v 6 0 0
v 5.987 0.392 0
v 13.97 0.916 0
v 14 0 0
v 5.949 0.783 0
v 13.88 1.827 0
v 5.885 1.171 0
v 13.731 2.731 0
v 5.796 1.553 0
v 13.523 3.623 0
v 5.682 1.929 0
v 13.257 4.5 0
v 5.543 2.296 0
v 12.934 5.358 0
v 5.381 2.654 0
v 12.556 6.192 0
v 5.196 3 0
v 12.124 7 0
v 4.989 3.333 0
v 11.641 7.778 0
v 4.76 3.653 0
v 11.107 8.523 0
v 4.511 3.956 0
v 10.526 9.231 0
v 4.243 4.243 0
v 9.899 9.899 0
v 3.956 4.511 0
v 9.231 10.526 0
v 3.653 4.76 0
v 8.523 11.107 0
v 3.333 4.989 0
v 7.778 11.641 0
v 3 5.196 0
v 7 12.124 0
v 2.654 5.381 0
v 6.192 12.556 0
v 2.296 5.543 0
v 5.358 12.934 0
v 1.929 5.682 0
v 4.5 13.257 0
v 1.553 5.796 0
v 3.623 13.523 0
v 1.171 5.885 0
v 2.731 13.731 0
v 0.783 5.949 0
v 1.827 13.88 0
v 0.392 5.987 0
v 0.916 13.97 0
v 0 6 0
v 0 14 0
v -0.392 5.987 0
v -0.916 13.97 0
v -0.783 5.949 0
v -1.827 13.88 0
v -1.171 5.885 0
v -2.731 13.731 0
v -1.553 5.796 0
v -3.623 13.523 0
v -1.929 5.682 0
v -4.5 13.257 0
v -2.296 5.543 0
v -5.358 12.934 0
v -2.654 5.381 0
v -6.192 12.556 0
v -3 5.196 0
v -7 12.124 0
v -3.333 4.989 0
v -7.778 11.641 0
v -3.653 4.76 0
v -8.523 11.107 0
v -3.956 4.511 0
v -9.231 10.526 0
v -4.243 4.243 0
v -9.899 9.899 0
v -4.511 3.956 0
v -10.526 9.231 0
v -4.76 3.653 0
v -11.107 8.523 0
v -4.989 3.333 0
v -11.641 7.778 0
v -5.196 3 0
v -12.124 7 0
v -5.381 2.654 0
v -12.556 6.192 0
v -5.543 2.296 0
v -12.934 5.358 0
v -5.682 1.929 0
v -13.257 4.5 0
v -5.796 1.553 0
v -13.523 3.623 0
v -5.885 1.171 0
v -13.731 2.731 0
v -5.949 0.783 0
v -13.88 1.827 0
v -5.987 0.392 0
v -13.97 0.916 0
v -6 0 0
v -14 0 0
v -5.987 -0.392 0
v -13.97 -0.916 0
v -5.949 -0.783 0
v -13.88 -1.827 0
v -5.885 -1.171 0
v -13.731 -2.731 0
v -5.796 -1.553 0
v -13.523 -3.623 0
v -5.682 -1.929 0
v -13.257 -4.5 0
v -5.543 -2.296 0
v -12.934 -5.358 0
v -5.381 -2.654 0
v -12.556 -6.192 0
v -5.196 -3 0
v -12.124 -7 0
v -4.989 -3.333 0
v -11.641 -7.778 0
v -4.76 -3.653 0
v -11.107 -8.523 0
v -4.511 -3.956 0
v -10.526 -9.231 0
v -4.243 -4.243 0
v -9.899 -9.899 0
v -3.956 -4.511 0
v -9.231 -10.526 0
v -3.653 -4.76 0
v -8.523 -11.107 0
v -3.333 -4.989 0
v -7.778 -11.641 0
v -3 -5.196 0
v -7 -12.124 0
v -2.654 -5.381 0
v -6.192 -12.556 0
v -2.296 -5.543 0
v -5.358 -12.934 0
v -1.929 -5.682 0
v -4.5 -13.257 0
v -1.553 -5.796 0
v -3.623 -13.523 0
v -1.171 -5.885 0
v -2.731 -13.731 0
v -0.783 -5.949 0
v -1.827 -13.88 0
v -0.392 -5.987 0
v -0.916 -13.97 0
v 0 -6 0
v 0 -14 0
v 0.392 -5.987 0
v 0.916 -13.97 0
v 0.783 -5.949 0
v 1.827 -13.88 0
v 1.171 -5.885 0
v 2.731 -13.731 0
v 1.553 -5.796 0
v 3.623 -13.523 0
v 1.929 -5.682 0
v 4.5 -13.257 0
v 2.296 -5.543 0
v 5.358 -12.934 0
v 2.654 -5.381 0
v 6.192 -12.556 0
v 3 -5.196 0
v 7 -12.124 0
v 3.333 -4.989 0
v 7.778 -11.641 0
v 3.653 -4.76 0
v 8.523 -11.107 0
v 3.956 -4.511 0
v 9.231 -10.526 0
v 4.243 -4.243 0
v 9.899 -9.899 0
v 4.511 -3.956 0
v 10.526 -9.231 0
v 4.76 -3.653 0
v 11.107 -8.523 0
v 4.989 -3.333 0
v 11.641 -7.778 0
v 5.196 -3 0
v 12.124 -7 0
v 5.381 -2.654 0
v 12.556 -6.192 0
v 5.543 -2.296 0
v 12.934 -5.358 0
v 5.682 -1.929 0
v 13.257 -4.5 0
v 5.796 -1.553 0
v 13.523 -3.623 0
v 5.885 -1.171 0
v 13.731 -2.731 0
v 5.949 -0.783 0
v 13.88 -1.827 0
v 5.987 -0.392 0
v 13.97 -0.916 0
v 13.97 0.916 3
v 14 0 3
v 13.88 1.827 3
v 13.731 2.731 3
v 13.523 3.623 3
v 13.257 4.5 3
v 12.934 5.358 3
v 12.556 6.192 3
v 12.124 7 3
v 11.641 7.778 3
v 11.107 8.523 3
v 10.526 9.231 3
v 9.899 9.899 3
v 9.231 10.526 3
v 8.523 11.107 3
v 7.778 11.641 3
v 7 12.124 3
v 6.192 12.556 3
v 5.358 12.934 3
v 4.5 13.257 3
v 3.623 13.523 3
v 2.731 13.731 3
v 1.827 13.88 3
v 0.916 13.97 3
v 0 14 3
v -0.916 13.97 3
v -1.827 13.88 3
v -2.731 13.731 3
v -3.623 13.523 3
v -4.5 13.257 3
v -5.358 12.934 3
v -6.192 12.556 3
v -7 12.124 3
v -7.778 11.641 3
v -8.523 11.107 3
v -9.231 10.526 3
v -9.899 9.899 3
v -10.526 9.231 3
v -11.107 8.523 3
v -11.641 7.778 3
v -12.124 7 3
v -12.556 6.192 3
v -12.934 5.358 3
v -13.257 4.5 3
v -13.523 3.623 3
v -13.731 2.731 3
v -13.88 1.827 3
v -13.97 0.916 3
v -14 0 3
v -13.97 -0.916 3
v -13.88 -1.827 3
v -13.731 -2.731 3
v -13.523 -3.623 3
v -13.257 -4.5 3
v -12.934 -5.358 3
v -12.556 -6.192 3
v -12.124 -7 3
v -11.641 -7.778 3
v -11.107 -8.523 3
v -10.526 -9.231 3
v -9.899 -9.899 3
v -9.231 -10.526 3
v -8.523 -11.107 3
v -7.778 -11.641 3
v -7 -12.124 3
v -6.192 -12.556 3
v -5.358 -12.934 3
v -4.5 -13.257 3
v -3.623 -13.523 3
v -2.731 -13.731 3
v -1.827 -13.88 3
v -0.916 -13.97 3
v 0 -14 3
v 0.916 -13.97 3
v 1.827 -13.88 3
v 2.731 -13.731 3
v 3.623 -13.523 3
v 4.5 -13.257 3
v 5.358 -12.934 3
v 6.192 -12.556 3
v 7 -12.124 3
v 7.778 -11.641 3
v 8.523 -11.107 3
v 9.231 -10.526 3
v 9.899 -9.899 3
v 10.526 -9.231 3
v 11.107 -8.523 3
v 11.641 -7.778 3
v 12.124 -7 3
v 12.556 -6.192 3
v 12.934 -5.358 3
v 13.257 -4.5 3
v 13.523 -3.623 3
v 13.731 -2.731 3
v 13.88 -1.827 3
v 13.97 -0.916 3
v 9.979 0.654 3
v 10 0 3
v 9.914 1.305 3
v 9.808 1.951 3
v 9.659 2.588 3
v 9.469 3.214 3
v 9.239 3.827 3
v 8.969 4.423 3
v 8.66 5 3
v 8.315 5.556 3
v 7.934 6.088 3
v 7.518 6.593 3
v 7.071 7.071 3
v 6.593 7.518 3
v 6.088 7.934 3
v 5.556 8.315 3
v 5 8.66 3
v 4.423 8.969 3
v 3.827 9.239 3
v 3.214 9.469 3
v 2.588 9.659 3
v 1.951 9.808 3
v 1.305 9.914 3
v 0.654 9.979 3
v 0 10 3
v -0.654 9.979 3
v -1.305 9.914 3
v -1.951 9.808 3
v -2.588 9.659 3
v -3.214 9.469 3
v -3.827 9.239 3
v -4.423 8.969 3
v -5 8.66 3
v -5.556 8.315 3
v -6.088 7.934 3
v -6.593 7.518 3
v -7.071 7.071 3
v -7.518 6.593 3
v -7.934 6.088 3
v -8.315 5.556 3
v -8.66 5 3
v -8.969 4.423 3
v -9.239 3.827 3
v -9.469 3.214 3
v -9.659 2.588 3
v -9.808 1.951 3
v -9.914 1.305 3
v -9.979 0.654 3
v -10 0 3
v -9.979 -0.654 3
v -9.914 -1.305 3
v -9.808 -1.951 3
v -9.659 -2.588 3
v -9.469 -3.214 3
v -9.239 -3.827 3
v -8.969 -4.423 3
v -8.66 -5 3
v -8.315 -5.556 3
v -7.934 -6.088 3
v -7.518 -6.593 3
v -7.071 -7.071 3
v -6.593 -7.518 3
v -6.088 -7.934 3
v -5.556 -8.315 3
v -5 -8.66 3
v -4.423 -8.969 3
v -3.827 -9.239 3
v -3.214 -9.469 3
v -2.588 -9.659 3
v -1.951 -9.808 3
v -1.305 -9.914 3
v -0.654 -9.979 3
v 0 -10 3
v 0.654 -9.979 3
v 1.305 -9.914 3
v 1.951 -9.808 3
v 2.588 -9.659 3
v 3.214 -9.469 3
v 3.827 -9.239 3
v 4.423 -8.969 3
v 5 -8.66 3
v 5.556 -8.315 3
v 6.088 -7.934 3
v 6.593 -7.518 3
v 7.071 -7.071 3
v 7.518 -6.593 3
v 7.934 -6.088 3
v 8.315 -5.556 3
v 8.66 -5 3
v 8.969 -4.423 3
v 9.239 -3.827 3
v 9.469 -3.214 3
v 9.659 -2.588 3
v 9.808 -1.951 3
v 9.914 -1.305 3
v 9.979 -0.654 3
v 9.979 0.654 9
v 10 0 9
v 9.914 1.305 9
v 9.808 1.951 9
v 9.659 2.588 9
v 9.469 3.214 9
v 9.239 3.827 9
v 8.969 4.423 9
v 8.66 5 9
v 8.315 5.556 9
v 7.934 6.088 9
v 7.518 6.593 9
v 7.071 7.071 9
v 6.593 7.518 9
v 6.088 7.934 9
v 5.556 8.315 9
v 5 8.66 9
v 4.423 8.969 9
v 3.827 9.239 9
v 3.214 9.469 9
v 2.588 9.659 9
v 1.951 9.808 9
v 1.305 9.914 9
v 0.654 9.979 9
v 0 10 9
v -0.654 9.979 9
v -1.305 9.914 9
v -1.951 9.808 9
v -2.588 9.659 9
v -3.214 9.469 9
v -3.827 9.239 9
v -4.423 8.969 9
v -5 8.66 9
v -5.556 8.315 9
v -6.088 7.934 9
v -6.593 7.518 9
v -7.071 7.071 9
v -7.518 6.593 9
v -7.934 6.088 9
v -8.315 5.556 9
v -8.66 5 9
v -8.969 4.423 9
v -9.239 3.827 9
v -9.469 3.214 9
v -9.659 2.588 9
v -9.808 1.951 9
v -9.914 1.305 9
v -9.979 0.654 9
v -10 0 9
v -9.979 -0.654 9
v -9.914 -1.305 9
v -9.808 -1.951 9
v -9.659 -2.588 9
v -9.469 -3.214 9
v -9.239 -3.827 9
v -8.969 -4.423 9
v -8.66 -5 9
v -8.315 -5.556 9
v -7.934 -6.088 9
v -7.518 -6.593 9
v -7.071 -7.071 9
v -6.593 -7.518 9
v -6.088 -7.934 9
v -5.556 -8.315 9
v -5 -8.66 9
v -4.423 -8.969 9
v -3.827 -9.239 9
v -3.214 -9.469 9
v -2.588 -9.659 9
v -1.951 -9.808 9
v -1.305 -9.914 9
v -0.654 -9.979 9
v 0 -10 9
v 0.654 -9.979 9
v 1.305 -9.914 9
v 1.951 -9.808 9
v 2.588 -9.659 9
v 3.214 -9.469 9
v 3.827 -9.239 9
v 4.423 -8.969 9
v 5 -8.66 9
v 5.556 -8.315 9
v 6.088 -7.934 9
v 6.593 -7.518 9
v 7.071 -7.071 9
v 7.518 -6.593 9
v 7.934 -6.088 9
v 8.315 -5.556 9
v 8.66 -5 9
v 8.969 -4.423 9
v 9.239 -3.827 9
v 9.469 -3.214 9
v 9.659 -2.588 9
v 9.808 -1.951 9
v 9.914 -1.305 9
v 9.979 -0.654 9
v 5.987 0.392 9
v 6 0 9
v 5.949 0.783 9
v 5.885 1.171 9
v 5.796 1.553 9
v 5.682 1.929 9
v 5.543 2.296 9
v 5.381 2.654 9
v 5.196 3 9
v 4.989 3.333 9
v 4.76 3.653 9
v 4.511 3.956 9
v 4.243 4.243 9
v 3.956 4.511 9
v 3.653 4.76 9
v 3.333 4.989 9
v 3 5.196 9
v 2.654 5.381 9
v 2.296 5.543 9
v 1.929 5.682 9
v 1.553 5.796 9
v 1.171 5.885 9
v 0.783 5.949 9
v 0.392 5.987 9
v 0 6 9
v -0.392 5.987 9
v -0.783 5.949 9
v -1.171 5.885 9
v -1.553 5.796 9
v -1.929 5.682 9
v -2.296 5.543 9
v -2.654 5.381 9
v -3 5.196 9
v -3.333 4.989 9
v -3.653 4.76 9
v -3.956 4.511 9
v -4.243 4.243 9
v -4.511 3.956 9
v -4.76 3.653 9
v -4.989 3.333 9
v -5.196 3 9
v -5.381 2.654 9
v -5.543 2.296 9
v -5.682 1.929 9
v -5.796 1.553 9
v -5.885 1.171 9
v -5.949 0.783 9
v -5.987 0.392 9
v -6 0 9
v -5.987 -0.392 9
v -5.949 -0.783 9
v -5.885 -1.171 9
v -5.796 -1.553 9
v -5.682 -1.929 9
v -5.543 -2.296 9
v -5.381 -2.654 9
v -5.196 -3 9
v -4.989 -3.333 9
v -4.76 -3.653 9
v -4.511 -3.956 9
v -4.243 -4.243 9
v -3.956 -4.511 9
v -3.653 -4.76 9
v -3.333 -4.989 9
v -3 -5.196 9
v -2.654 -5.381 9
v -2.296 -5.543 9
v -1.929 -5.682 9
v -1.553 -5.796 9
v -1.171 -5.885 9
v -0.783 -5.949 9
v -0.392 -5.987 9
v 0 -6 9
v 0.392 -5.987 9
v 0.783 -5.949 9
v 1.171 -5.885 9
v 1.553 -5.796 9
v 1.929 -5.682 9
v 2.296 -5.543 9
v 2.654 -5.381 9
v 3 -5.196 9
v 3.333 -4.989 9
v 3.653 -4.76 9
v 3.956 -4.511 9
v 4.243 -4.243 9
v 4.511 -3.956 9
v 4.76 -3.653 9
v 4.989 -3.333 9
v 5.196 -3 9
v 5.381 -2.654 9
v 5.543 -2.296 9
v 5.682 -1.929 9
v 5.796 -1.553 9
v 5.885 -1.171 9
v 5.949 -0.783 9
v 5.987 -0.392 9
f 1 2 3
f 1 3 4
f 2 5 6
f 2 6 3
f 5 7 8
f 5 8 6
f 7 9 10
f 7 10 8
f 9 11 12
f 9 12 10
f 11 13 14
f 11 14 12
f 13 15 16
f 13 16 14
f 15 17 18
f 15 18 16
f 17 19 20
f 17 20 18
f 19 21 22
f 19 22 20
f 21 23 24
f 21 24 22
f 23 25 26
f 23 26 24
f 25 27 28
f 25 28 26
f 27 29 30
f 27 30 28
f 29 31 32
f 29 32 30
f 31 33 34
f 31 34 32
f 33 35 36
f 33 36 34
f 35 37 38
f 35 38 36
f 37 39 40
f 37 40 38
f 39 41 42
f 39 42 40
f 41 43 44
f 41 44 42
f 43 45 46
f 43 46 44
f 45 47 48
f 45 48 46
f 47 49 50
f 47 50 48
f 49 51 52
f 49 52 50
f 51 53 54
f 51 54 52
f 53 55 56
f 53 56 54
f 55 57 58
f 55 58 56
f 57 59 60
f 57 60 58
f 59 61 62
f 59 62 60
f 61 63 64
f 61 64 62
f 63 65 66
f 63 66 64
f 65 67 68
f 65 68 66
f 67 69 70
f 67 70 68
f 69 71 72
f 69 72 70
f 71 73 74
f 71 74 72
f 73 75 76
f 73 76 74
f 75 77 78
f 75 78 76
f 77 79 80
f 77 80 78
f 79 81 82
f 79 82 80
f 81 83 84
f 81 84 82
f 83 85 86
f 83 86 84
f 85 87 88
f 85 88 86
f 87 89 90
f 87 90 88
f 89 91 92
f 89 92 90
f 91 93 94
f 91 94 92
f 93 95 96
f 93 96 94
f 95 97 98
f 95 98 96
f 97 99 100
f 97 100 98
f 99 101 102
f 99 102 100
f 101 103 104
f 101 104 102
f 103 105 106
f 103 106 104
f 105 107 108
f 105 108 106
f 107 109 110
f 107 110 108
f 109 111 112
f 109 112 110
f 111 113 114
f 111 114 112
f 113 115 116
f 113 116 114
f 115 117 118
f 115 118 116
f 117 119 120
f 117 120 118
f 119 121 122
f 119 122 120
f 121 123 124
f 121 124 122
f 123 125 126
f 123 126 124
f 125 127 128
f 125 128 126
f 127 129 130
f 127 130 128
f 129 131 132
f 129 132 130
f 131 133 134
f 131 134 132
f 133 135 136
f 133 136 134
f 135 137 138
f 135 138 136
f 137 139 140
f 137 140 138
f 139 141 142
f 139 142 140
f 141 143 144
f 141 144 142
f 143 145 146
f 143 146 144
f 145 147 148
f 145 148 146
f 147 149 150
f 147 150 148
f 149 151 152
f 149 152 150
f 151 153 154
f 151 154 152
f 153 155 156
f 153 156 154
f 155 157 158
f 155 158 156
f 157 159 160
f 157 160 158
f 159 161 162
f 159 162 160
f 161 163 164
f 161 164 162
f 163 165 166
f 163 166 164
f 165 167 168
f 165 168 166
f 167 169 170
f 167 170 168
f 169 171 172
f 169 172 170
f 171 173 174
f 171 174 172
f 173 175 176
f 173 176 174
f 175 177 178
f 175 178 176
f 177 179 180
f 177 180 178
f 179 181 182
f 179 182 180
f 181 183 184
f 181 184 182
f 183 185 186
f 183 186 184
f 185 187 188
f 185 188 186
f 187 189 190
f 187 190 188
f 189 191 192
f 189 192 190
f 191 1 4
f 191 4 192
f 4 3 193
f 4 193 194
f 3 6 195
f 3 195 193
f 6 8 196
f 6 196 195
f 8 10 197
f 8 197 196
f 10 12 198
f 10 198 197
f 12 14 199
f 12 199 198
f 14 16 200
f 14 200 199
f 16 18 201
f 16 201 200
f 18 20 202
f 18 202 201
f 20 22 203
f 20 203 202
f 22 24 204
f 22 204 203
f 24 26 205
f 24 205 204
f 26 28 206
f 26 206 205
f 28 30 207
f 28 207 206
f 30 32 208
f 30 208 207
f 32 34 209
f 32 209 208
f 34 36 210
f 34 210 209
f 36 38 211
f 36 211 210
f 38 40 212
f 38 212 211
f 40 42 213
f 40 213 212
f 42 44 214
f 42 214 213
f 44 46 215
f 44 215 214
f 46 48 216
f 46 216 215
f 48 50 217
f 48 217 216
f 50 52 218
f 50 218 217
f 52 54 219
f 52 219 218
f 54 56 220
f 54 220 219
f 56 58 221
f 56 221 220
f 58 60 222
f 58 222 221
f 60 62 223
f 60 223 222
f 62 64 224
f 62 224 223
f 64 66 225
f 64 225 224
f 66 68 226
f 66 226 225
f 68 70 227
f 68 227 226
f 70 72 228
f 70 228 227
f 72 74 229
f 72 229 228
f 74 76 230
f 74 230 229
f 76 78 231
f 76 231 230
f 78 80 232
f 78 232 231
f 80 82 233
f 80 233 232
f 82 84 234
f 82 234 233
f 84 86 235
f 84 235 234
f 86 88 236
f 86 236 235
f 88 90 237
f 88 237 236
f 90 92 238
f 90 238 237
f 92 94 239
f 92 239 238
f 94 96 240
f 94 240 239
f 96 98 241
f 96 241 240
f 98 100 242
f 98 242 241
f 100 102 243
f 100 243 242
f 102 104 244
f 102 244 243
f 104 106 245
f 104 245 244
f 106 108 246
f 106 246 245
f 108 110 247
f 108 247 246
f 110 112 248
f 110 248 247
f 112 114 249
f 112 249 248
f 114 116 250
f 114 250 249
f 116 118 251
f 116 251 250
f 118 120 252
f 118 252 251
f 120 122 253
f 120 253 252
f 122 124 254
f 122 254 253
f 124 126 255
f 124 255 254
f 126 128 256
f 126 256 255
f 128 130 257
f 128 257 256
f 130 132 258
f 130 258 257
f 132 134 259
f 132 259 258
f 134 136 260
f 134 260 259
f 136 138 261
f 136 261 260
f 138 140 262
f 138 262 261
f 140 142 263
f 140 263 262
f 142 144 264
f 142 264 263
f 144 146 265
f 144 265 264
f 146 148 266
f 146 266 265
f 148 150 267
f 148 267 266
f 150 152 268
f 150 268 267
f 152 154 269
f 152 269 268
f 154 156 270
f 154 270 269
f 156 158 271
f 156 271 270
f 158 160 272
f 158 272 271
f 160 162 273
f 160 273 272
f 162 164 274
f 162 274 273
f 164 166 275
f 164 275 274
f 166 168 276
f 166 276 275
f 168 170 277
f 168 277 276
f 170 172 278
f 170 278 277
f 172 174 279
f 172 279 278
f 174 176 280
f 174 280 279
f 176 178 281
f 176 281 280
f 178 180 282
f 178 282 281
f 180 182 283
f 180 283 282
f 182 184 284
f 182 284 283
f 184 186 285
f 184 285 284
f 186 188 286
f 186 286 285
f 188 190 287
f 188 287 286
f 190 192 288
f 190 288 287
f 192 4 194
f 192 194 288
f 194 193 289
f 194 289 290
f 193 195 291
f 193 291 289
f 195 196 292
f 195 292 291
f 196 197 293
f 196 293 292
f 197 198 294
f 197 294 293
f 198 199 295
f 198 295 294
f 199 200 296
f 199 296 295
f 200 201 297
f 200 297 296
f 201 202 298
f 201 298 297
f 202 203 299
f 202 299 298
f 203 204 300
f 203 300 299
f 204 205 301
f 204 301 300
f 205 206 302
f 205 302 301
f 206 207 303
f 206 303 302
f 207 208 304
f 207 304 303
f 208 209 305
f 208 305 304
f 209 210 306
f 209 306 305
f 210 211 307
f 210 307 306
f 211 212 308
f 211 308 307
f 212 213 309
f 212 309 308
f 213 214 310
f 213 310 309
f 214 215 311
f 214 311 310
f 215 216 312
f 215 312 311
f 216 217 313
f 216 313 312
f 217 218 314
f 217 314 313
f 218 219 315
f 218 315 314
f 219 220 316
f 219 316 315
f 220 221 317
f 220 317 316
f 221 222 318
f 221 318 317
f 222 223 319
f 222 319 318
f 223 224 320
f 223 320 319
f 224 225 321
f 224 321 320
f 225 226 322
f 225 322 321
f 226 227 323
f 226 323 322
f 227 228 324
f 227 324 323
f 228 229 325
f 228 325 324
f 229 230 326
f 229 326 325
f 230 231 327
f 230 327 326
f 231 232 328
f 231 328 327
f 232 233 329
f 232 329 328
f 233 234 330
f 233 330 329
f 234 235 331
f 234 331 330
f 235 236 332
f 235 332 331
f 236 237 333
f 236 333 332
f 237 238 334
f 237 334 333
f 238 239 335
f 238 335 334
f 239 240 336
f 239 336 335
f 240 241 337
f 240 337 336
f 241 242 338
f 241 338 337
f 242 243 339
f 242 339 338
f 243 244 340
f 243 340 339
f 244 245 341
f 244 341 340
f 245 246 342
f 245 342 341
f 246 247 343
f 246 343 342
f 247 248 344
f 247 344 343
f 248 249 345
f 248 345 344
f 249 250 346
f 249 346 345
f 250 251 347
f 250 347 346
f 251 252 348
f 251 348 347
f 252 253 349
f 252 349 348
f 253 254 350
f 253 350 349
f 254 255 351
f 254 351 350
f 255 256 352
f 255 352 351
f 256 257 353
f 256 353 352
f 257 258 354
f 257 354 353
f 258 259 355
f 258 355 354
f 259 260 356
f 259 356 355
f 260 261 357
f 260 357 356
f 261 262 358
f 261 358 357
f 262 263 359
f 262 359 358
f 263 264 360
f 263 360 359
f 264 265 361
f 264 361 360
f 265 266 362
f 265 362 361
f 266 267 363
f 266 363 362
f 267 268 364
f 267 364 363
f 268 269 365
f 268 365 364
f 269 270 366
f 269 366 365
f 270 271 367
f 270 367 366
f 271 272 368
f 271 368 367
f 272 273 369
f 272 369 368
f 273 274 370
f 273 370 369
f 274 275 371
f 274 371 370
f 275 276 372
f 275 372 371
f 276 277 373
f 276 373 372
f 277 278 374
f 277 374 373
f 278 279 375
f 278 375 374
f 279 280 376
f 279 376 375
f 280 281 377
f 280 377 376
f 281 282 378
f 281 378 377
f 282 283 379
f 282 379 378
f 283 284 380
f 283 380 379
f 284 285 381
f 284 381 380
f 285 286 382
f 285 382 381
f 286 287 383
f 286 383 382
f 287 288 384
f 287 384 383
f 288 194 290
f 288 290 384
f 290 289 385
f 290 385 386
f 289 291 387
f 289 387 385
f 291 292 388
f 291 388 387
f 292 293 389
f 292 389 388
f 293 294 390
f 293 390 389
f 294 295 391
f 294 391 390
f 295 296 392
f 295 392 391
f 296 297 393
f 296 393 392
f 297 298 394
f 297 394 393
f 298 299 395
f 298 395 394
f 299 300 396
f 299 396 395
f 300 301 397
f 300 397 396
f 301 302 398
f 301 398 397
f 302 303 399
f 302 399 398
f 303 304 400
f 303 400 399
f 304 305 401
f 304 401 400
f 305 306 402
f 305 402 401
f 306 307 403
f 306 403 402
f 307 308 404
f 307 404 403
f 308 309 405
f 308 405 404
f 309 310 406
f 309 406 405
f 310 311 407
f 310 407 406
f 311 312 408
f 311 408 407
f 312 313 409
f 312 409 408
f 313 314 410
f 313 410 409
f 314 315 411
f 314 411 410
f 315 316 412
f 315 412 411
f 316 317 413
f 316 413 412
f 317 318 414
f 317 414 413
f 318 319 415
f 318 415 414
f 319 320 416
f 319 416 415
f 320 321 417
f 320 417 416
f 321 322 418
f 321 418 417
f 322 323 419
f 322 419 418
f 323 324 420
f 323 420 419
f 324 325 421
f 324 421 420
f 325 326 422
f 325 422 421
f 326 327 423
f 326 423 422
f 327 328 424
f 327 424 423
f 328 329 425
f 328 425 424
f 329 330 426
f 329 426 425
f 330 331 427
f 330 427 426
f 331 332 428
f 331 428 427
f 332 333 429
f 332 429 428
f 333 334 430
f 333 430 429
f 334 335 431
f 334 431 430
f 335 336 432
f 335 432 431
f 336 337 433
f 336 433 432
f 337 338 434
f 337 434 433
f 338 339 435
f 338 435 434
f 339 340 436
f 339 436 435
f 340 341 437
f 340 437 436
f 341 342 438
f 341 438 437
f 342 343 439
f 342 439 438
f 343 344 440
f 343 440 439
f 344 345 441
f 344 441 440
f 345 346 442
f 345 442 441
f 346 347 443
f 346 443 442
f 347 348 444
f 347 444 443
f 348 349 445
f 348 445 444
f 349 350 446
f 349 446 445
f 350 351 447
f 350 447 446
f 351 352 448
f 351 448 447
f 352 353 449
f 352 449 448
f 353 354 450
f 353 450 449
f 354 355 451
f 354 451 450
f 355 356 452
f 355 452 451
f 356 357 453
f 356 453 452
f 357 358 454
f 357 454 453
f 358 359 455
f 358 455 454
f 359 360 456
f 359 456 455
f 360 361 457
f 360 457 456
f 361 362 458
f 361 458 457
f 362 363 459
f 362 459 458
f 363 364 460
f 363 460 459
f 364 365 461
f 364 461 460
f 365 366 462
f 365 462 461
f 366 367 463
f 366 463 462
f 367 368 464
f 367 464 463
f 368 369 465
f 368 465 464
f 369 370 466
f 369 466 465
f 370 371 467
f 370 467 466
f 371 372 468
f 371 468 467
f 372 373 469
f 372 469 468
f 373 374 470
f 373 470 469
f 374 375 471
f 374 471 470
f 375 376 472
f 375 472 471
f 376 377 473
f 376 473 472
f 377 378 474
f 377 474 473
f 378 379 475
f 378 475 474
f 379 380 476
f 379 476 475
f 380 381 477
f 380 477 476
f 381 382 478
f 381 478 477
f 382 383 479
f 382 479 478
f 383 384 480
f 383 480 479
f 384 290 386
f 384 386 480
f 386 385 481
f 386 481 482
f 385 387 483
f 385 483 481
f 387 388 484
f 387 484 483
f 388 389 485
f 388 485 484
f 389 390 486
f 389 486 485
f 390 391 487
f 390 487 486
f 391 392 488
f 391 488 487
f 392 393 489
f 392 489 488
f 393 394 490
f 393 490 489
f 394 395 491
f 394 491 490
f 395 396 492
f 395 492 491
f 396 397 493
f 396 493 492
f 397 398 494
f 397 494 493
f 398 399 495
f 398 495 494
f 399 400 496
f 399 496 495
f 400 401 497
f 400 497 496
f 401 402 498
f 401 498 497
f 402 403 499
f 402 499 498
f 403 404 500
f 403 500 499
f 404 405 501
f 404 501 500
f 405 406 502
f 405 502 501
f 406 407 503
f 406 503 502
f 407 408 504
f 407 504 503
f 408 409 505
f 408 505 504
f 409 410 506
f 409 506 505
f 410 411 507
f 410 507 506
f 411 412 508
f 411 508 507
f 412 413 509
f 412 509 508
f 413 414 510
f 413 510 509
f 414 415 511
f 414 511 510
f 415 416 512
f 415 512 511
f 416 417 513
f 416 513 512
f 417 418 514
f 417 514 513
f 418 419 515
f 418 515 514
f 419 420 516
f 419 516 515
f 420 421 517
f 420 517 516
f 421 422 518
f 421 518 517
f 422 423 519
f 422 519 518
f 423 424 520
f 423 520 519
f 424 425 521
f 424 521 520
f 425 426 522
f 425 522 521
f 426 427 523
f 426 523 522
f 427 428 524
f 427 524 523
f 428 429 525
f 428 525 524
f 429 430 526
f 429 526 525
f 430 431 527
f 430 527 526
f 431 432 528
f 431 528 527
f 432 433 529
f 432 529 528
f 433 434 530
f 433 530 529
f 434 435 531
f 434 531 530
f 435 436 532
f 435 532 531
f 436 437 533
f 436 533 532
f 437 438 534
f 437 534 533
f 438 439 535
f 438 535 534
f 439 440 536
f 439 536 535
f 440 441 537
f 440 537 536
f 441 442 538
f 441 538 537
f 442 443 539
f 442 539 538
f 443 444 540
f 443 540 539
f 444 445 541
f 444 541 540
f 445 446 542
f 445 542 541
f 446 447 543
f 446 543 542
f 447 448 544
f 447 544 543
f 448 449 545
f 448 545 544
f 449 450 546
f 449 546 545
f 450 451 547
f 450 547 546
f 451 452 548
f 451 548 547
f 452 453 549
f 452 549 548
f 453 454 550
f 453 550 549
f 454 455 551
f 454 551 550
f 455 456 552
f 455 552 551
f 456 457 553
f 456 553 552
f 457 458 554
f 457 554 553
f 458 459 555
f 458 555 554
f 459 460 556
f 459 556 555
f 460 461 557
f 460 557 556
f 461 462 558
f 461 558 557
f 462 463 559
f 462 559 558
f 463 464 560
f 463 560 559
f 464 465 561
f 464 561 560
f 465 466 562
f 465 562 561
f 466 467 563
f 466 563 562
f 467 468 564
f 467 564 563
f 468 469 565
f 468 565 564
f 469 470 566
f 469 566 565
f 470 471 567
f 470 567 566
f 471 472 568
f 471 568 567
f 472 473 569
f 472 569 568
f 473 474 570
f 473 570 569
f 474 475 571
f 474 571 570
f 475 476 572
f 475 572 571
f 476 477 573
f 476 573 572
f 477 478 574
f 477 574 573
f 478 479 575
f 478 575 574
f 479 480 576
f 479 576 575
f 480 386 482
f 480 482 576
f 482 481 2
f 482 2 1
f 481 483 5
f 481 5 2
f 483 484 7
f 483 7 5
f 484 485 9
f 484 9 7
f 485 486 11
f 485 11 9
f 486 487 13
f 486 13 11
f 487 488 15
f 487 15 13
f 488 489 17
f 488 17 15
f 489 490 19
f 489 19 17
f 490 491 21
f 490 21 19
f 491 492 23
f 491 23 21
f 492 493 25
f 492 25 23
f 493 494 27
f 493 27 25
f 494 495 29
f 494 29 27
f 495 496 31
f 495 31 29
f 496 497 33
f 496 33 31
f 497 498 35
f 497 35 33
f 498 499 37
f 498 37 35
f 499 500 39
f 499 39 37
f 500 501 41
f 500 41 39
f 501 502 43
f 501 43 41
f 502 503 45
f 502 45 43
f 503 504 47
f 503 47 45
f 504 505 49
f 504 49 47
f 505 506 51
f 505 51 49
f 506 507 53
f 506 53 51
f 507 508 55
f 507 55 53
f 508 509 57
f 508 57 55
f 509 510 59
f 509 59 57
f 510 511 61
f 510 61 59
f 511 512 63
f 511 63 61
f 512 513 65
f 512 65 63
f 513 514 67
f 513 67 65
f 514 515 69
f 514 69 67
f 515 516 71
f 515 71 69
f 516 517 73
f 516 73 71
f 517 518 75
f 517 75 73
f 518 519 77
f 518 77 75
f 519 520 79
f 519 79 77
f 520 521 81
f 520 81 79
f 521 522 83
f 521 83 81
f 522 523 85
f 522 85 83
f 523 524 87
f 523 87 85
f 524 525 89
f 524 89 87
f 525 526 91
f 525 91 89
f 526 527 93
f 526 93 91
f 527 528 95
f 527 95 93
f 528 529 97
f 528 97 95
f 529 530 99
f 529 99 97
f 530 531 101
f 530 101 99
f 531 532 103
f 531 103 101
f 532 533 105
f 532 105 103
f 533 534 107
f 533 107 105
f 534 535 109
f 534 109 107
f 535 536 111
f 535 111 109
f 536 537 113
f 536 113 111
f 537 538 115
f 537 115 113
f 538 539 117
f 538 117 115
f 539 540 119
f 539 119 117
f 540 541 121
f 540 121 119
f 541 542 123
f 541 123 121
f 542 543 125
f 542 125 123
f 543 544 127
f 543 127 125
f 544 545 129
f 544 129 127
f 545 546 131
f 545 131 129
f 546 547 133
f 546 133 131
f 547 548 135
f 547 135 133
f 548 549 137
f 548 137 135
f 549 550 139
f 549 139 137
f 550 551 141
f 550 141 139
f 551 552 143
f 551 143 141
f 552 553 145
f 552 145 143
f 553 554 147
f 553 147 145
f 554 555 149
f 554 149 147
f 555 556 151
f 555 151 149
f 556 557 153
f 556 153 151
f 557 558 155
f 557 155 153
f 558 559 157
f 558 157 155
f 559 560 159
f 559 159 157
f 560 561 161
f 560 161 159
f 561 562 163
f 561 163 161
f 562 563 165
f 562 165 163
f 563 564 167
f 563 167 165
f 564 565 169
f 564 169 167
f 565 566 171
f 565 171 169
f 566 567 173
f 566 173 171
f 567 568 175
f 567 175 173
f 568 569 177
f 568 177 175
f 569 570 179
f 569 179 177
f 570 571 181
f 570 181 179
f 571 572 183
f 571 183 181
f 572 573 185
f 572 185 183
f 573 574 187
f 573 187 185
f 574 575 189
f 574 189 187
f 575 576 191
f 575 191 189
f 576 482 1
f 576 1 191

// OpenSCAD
// Original MechIntel educational model. CC0-1.0. Units: mm.
// Not a standardized or load-rated component.
$fn=96;
// Section points: [radius, height], mm. Edit to change the profile.
section=[[6, 0], [14, 0], [14, 3], [10, 3], [10, 9], [6, 9]];
rotate_extrude($fn=96) polygon(points=section);
